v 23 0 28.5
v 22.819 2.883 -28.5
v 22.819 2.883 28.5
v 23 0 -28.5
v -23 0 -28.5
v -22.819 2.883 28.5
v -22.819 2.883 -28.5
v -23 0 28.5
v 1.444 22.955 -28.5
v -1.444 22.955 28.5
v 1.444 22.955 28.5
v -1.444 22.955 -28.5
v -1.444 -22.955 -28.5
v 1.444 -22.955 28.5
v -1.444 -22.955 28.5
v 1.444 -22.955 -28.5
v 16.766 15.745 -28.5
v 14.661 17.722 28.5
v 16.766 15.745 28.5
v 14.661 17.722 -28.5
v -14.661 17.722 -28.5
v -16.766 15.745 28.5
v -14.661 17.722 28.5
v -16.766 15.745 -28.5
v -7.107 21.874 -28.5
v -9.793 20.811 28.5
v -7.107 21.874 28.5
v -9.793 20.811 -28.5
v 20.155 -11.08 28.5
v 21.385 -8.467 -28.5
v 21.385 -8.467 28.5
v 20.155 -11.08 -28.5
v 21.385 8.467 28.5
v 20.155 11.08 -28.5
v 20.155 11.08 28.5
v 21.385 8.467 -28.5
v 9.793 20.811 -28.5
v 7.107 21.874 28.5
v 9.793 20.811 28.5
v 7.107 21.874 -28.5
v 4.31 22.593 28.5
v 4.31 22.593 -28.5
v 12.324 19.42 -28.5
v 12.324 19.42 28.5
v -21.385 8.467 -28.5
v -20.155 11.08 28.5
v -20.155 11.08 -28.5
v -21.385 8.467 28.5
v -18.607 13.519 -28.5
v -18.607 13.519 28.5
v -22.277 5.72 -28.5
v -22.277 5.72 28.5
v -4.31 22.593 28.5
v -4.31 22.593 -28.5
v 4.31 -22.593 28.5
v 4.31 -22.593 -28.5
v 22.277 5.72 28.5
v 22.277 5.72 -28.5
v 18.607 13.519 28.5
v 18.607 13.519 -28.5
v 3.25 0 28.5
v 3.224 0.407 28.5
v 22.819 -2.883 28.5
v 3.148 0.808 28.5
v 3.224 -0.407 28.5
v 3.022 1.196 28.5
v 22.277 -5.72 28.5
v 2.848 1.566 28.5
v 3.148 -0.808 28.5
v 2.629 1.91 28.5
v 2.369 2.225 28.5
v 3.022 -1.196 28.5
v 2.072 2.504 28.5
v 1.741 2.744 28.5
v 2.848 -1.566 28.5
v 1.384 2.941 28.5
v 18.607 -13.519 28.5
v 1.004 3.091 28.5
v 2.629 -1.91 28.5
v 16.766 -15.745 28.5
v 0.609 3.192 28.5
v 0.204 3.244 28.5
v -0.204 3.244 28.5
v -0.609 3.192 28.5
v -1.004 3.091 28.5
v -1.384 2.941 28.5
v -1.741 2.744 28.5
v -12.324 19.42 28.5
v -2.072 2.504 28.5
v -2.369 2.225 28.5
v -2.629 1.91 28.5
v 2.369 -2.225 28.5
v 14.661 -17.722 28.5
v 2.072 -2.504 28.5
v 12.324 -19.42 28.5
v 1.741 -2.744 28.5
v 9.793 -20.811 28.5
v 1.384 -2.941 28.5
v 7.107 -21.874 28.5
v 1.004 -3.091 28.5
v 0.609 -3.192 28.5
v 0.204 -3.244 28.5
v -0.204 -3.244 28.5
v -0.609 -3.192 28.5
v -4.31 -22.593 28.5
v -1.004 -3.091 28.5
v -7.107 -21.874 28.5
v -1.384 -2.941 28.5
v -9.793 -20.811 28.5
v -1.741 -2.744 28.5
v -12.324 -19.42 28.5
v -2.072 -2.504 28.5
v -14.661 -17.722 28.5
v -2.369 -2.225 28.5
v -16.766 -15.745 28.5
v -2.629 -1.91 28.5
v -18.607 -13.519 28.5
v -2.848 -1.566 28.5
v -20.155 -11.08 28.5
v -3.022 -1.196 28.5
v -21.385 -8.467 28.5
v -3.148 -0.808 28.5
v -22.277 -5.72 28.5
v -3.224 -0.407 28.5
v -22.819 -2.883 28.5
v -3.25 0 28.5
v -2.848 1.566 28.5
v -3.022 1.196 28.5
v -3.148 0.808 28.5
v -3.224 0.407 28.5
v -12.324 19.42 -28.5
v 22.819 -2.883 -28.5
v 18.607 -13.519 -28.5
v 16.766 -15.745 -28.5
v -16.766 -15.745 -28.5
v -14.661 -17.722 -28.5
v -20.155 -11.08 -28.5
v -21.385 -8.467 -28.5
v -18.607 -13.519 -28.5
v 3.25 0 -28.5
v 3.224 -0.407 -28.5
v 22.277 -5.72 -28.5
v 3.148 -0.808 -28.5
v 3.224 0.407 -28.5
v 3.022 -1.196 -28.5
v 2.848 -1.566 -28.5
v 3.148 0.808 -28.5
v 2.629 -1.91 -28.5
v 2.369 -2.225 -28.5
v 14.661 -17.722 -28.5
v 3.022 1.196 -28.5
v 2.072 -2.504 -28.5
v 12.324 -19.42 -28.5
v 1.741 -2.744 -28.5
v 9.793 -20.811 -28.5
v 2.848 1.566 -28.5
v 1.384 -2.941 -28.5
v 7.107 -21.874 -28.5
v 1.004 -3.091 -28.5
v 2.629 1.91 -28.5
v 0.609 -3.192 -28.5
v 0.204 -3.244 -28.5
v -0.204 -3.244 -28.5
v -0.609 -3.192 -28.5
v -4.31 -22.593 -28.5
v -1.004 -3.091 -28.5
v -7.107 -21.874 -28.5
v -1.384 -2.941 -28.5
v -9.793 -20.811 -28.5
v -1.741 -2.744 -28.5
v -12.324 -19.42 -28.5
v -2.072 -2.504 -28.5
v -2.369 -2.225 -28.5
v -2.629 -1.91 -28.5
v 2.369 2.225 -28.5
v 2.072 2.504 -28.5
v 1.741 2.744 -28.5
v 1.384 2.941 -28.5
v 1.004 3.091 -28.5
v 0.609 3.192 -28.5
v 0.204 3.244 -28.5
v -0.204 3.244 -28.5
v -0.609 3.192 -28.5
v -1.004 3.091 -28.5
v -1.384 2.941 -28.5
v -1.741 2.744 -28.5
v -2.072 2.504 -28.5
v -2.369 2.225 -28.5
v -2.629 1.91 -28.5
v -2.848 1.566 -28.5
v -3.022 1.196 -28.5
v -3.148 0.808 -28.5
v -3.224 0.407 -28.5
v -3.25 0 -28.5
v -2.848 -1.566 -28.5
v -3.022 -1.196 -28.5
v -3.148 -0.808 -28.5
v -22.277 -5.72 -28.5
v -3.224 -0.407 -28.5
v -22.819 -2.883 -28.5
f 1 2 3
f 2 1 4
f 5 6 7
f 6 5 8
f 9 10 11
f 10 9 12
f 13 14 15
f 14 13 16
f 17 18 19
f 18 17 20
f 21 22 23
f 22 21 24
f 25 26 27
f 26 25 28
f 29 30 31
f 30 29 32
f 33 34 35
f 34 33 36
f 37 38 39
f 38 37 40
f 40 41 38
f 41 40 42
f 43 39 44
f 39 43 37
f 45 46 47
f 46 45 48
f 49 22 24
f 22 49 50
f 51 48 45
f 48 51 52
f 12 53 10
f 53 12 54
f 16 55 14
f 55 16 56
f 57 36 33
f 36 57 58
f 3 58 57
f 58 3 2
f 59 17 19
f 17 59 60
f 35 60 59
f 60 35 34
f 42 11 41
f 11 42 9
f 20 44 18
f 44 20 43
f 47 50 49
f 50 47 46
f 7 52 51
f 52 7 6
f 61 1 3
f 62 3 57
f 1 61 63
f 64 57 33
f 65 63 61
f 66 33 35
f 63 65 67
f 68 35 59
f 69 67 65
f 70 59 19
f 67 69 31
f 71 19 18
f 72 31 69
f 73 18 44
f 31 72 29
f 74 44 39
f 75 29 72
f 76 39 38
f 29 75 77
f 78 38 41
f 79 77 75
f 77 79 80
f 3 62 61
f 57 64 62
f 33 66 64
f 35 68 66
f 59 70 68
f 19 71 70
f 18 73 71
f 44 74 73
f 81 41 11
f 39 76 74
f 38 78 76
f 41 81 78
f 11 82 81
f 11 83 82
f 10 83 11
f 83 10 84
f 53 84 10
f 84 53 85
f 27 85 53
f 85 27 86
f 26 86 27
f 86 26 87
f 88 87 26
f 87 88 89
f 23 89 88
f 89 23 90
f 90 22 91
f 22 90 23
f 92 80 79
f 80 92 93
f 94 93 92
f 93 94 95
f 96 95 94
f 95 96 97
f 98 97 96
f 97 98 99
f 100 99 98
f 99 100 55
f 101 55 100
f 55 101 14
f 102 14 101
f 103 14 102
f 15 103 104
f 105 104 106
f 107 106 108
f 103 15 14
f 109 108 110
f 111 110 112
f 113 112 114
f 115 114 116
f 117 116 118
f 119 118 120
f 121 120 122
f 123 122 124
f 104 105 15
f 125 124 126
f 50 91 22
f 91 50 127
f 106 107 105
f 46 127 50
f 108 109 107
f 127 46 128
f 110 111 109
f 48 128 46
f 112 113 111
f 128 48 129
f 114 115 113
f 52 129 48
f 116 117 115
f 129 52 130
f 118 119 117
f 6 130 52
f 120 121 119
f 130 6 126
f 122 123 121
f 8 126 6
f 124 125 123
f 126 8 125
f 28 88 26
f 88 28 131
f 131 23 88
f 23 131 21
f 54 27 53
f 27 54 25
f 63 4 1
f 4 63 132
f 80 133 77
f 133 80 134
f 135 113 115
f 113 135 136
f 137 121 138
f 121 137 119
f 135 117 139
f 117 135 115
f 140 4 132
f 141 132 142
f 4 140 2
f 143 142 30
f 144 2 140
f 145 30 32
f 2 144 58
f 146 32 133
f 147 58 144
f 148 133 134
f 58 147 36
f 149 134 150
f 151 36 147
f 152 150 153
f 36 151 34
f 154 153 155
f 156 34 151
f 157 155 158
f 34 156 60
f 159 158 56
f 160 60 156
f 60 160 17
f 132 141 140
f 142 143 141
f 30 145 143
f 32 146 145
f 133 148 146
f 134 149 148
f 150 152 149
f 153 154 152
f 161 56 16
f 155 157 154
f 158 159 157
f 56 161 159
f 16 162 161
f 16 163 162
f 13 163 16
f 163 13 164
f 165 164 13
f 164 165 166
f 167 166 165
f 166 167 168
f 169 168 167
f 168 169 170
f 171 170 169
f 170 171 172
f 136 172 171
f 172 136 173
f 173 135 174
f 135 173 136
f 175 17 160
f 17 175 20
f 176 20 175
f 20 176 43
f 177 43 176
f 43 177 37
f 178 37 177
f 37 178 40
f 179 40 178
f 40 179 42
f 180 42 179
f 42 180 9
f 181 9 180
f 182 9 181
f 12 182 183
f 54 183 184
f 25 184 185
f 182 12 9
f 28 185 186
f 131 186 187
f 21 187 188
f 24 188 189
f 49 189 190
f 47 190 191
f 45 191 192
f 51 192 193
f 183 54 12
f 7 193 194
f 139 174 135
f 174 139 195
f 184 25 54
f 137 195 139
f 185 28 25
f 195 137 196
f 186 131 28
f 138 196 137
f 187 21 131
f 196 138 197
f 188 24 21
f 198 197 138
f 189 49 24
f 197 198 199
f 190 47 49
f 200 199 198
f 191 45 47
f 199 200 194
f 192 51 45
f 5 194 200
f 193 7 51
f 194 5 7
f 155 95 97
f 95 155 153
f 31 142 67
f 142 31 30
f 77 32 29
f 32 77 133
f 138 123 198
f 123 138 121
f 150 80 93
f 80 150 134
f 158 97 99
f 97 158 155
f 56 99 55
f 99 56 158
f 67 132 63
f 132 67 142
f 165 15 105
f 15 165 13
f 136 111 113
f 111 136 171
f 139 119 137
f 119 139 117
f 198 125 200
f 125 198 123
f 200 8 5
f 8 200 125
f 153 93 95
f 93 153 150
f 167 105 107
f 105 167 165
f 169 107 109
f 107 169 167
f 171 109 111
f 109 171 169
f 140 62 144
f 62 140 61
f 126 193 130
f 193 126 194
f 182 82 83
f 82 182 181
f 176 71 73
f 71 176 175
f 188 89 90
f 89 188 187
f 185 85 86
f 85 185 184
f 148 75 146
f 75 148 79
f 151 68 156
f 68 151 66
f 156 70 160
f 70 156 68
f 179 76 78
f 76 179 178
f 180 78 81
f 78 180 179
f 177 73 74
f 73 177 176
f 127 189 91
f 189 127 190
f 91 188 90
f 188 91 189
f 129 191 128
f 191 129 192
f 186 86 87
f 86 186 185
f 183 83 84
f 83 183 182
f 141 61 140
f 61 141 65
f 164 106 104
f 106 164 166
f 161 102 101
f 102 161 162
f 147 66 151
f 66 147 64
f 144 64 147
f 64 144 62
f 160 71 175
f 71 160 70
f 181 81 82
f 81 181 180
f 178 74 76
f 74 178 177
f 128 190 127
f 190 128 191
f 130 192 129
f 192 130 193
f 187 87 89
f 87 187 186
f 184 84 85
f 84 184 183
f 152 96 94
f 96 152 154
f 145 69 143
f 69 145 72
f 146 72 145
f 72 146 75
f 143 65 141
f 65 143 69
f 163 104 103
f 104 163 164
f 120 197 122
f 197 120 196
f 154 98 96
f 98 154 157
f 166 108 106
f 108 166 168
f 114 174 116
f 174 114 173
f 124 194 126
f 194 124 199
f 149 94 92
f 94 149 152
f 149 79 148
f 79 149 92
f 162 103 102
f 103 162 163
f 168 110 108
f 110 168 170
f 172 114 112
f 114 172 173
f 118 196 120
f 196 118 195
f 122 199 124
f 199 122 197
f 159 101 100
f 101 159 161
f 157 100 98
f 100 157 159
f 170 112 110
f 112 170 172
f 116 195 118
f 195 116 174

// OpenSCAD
$fn = 50;


difference() {
	union() {
		translate(v = [0, 0, -28.5000000000]) {
			cylinder(h = 57, r = 23.0000000000);
		}
	}
	union() {
		translate(v = [0, 0, -100.0000000000]) {
			cylinder(h = 200, r = 3.2500000000);
		}
	}
}
